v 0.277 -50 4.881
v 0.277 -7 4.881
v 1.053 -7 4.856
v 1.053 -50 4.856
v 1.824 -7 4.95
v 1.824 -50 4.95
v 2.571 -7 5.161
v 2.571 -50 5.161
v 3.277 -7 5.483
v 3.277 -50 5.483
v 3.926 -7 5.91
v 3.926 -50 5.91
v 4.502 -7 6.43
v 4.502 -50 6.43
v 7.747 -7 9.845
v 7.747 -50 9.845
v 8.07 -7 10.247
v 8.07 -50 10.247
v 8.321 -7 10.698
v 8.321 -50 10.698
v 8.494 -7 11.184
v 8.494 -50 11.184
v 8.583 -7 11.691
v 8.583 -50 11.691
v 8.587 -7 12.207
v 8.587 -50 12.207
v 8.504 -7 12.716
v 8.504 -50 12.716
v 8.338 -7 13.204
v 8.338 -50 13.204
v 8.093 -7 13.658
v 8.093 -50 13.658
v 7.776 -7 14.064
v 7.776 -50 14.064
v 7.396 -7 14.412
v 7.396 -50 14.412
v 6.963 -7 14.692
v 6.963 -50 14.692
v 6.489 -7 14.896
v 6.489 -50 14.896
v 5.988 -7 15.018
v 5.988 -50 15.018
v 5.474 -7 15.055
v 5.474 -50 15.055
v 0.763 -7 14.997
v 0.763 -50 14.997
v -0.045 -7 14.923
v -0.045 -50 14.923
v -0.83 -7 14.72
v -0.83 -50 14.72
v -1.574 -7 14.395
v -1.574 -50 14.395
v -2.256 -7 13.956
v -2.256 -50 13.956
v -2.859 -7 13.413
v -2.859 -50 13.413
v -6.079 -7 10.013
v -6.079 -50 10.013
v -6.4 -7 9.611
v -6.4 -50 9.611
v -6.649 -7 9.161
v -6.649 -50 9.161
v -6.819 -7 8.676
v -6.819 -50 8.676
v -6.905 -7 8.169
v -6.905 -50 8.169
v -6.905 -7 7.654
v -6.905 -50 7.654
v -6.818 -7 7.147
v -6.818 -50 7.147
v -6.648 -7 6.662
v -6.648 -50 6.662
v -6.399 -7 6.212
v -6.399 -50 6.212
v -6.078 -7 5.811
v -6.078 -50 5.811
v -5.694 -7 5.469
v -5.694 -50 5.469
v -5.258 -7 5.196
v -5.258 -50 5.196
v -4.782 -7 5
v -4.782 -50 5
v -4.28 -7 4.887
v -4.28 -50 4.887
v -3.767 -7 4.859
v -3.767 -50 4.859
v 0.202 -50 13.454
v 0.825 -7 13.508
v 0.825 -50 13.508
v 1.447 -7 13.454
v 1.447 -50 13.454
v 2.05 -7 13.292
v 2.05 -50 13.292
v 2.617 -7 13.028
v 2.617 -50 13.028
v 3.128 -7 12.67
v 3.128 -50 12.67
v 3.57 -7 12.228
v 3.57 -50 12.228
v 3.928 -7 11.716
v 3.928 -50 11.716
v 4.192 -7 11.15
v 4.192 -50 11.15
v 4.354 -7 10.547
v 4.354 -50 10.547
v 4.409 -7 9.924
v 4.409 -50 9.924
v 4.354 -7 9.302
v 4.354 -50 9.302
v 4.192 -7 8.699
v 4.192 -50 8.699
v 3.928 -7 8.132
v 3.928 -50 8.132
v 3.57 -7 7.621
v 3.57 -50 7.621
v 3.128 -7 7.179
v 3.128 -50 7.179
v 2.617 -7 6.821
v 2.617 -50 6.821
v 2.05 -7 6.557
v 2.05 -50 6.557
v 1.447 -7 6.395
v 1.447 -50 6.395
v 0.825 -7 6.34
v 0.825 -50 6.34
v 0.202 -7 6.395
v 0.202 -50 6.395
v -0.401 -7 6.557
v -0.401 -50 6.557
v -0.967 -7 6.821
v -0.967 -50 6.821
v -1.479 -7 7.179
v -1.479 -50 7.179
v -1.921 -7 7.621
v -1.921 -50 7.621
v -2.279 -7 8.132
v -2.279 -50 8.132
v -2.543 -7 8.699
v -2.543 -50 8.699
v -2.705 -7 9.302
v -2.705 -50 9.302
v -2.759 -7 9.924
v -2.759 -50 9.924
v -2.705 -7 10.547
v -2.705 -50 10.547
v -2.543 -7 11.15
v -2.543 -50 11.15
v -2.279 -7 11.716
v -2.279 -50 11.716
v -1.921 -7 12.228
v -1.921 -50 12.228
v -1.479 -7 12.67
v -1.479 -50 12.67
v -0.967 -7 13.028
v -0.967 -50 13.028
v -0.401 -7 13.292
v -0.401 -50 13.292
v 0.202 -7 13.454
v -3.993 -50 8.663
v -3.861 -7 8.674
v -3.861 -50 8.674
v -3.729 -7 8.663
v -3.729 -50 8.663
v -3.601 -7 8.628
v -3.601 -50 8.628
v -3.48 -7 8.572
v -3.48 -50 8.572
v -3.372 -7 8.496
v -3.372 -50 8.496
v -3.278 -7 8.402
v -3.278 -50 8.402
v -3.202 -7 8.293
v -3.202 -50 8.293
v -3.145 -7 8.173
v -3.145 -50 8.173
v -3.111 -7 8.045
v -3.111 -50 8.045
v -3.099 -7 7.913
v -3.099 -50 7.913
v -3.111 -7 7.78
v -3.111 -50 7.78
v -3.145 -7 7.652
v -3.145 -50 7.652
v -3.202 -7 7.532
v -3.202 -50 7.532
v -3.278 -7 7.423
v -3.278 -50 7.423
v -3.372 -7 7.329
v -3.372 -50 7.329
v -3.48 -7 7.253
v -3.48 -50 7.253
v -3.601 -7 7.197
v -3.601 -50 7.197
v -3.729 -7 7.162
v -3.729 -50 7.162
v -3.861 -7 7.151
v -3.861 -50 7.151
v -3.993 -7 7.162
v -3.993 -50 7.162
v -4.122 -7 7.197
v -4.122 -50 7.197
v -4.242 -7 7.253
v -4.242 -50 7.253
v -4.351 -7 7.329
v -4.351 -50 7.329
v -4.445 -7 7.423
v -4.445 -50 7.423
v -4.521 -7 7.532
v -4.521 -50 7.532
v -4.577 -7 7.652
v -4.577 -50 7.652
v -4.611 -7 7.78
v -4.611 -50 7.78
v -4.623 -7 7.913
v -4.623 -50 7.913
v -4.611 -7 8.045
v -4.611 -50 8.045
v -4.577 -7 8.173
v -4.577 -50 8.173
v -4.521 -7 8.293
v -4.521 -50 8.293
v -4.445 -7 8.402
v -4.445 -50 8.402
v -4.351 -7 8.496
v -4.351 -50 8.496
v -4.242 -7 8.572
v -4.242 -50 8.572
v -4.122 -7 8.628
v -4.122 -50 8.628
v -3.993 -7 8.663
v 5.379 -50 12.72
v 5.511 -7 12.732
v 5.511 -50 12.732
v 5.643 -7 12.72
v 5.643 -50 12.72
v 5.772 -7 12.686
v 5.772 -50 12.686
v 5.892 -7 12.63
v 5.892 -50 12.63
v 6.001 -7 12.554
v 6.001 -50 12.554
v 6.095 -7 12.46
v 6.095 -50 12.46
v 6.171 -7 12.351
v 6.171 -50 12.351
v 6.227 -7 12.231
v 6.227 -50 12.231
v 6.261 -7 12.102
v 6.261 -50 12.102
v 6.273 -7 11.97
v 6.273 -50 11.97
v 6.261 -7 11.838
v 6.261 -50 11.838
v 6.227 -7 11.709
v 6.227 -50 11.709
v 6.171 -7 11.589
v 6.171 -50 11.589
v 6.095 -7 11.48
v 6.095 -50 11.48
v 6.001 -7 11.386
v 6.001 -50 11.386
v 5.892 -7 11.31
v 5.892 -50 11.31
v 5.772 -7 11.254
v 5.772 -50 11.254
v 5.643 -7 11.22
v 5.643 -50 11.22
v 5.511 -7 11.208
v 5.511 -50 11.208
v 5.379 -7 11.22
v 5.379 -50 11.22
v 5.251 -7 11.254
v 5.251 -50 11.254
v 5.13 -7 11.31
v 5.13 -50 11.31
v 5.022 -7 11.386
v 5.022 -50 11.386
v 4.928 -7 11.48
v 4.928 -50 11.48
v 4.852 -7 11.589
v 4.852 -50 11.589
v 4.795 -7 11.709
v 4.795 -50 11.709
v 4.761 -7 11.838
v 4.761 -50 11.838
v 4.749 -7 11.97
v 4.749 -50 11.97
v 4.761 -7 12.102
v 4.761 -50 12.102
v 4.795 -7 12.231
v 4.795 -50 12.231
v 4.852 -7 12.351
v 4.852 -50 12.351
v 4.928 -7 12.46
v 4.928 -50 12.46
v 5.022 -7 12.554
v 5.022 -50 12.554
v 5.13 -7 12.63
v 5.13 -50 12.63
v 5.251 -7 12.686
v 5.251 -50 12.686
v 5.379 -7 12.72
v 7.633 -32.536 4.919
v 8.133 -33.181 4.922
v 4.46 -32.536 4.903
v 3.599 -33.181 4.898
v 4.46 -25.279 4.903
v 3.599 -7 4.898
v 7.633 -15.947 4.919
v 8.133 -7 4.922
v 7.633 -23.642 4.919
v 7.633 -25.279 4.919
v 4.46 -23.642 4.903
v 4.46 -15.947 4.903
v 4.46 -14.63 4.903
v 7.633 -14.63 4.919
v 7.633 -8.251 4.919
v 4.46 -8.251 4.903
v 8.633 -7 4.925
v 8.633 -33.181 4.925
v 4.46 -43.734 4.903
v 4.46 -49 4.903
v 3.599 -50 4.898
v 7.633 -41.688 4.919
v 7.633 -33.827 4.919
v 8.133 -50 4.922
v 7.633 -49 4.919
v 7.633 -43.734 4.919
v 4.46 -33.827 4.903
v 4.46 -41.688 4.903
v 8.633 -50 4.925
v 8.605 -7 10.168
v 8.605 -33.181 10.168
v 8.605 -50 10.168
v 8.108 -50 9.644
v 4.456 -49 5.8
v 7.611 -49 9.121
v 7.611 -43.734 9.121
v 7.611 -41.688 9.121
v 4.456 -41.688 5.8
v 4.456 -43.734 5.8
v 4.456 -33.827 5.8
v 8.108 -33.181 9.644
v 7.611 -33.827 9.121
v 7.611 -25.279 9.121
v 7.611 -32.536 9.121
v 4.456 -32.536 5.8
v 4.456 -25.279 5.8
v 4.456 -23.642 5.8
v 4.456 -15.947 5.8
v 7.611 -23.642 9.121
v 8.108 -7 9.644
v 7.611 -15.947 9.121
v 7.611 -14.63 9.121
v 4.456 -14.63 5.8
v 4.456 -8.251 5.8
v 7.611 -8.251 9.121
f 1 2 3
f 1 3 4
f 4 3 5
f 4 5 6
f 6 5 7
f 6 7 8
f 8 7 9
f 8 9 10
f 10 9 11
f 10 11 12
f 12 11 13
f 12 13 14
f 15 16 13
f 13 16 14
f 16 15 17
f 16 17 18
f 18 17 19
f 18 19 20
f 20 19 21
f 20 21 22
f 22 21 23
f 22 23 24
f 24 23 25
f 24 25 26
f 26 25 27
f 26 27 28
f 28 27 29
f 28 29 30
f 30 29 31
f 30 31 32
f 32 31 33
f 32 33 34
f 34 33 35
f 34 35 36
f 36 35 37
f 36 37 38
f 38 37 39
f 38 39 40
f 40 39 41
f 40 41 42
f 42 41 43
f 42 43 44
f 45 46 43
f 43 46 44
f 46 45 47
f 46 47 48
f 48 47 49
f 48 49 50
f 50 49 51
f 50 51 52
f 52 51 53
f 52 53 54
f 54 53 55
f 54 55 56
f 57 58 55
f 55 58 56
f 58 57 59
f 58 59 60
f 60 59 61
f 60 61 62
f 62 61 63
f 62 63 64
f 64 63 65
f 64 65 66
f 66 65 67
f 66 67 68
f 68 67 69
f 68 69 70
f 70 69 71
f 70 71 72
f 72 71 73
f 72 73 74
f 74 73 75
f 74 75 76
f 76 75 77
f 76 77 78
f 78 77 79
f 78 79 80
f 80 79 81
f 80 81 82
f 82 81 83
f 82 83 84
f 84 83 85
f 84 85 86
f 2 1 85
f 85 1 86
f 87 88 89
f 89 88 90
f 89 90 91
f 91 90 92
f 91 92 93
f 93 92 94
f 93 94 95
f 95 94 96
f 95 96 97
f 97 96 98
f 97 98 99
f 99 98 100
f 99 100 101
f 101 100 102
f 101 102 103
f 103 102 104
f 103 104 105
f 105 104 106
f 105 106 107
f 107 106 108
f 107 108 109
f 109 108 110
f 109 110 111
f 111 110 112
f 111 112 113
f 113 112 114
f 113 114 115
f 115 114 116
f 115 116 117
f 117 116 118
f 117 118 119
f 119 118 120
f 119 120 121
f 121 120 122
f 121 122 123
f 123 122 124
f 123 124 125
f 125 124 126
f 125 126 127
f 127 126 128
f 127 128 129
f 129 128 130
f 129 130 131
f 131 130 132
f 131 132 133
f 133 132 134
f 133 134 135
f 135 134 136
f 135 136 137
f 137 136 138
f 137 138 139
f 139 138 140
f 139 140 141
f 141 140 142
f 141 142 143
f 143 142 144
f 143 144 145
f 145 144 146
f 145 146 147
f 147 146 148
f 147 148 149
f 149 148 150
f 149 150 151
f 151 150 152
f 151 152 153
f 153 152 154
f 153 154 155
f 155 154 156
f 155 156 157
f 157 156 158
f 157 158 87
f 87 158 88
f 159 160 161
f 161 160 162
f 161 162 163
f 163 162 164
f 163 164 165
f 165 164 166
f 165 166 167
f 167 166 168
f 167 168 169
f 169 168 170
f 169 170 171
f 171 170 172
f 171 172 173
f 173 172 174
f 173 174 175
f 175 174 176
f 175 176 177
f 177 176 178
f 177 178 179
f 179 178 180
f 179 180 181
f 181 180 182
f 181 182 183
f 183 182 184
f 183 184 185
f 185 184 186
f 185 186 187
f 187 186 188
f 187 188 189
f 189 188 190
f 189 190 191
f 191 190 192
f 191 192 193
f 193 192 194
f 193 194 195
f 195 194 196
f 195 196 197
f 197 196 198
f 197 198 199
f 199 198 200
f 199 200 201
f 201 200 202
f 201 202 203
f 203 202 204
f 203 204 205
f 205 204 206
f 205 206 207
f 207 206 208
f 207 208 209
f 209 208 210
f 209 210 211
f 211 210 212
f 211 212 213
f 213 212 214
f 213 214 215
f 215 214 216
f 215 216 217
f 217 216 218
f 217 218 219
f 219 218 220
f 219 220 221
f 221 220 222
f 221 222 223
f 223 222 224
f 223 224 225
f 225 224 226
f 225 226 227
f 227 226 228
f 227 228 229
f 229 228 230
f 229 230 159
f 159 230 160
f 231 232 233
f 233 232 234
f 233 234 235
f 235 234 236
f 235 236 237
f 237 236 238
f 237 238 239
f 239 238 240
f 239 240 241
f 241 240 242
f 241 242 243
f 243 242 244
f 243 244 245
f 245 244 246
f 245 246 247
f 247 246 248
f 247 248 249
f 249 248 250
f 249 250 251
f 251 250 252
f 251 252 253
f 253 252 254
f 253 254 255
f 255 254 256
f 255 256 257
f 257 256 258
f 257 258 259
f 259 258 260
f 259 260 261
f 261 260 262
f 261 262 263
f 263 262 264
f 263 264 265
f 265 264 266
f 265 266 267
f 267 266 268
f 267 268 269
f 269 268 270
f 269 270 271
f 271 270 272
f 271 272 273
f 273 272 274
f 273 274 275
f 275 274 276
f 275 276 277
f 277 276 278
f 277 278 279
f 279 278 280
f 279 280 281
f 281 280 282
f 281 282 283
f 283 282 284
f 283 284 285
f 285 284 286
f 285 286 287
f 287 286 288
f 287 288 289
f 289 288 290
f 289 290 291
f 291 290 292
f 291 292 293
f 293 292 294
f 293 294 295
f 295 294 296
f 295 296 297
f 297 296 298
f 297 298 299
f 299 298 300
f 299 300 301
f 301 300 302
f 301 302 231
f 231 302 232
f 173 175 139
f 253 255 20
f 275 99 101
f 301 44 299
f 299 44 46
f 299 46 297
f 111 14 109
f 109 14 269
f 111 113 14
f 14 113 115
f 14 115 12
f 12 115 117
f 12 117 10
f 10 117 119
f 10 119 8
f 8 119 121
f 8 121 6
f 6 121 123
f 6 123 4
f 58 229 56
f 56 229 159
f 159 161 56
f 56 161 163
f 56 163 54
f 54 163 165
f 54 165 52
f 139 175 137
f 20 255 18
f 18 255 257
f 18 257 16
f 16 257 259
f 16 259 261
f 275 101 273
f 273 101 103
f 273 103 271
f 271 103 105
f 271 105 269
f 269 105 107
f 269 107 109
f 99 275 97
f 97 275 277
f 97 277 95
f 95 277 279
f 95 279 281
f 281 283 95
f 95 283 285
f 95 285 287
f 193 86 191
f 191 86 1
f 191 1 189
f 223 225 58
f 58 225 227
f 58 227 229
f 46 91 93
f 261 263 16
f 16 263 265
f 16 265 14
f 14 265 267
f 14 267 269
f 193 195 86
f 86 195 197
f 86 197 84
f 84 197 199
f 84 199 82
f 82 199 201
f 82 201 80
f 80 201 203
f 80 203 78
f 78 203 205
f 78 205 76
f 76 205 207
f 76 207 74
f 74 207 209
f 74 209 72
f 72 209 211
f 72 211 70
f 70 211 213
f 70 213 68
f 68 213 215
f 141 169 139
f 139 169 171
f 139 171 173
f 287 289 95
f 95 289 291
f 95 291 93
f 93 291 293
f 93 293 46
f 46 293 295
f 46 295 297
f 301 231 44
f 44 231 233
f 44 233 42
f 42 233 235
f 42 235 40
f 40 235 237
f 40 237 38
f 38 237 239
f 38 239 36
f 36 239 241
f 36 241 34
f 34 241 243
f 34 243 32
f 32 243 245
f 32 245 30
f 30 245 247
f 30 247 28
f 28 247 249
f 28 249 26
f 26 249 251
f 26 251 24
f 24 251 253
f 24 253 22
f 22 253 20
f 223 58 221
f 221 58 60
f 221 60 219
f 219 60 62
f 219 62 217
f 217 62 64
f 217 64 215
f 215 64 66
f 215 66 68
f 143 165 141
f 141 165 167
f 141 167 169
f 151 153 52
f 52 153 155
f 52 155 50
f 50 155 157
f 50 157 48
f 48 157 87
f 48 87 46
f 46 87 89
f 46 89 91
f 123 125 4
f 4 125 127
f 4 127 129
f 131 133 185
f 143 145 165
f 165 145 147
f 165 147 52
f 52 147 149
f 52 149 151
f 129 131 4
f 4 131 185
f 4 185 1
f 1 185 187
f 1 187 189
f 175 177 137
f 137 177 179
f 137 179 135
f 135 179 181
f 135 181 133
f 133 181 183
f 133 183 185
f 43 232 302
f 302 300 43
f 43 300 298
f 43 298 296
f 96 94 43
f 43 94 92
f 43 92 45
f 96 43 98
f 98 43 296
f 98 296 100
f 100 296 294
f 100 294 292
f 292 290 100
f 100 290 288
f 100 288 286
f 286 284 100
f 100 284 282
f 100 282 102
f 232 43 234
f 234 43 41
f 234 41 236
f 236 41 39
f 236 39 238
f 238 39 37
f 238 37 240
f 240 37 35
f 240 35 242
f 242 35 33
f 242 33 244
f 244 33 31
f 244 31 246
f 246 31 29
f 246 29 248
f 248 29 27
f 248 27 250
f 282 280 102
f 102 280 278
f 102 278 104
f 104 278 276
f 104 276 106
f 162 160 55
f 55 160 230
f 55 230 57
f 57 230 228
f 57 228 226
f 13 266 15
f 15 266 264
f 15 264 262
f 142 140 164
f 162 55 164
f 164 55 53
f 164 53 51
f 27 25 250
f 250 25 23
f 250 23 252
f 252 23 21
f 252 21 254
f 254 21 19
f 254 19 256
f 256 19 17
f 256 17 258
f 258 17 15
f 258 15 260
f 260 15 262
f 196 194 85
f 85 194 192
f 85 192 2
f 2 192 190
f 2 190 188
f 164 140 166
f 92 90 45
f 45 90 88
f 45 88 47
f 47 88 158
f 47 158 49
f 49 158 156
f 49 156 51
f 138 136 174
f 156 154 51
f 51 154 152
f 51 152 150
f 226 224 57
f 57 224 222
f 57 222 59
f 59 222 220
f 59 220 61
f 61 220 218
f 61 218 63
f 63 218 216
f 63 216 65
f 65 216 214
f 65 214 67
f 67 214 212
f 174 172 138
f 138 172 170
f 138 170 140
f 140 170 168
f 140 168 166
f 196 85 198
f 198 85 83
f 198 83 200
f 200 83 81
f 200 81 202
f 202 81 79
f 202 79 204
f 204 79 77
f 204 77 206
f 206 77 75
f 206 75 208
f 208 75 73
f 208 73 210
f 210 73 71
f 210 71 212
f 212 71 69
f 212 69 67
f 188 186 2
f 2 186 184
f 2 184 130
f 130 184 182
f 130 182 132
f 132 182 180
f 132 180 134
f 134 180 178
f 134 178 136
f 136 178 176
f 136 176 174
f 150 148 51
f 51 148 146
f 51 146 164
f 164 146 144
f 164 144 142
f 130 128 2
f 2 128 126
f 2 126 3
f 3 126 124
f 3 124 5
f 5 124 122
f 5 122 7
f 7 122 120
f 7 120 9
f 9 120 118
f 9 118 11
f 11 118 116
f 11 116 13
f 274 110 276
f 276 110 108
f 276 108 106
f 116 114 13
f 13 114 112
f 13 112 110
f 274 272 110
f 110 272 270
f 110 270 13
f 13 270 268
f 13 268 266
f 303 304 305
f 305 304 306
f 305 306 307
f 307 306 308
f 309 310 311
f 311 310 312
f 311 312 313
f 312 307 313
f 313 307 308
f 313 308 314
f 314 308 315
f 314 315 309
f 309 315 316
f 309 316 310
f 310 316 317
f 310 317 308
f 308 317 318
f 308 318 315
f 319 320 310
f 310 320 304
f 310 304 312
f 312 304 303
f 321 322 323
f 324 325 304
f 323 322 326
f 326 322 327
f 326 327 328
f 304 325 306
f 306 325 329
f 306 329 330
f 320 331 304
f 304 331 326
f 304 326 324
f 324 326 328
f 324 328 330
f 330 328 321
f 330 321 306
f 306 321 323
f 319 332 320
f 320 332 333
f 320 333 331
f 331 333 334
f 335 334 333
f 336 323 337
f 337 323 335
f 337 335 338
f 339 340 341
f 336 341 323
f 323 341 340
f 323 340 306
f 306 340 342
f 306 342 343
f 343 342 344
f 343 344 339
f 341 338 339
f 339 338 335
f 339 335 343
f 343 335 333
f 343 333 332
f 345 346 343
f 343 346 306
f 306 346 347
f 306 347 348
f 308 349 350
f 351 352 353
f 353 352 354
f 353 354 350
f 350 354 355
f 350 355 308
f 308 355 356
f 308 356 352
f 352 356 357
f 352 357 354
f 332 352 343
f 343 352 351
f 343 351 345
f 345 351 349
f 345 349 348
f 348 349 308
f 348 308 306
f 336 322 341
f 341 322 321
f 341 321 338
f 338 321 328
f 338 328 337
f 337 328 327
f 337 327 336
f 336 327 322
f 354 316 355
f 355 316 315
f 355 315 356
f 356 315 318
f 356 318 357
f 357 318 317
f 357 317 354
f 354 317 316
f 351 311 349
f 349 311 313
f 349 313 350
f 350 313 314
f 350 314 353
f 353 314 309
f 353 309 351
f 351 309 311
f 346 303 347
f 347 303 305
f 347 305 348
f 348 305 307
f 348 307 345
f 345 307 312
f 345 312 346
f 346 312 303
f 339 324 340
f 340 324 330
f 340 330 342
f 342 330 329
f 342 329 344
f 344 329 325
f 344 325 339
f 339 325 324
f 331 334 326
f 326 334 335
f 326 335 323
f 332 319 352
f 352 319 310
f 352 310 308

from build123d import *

# Parameters (mm, degrees)
CROQUIS1_R                            = 3.583990311
CROQUIS1_R_2                          = 0.761712319
MAIN_DEPTH                            = 50
SOPORTE_IMPRESI_N_REACH               = 12.612
SOPORTE_IMPRESI_N_OFFSET_FROM_SURFACE = 0.4
CROQUIS9_W                            = 5.162810259
CROQUIS9_H                            = 50
CROQUIS9_W_2                          = 3.172851398
CROQUIS9_H_2                          = 5.265929043
CROQUIS9_H_3                          = 5.56879997
CROQUIS9_H_4                          = 6.378318597
CROQUIS9_H_5                          = 7.695217182
CROQUIS9_H_6                          = 7.257188423
CROQUIS9_H_7                          = 7.861259403
CROQUIS10_W                           = 16.930665583
CROQUIS10_H                           = 7.998462294
AJUSTE_DE_LONGITUD_DEPTH              = 20


with BuildPart() as part:
    # Croquis1 → Main (new body)
    with BuildSketch(Plane(origin=(0, 0, 0), x_dir=(1, 0, 0), z_dir=(0, 1, 0))):
        with BuildLine():
            Line((4.50248526, -6.429915097), (7.747476145, -9.845240308))
            ThreePointArc((7.747476145, -9.845240308), (8.338348215, -13.204009355), (5.473726293, -15.054522947))
            Line((5.473726293, -15.054522947), (0.762978959, -14.997324233))
            ThreePointArc((0.762978959, -14.997324233), (-1.208594731, -14.57247254), (-2.858853831, -13.413056012))
            Line((-2.858853831, -13.413056012), (-6.078991771, -10.013141592))
            ThreePointArc((-6.078991771, -10.013141592), (-6.648174073, -6.662123841), (-3.766616226, -4.85937238))
            Line((-3.766616226, -4.85937238), (0.277312206, -4.880694454))
            ThreePointArc((0.277312206, -4.880694454), (2.571074261, -5.161186678), (4.50248526, -6.429915097))
        make_face()
        with Locations((0.824575354, -9.924394652)):
            Circle(CROQUIS1_R, mode=Mode.SUBTRACT)
        with Locations((-3.861167301, -7.912588509)):
            Circle(CROQUIS1_R_2, mode=Mode.SUBTRACT)
        with Locations((5.511179043, -11.970005379)):
            Circle(CROQUIS1_R_2, mode=Mode.SUBTRACT)
    extrude(amount=-MAIN_DEPTH)


with BuildPart() as body_2:

    # Soporte impresión: up to this face of the body (flat: up to its plane, moved by the offset)
    soporte_impresi_n_end = Plane(part.part.faces().sort_by_distance((6.124980703, -25, 8.137577703))[0]).offset(SOPORTE_IMPRESI_N_OFFSET_FROM_SURFACE)
    # Croquis9 → Soporte impresión (new body, up to the picked face)
    with BuildSketch(Plane(origin=(-0.025725594, 0, 4.879096653), x_dir=(-0.9999861, 0, -0.005272541), z_dir=(0.005272541, 0, -0.9999861)), mode=Mode.PRIVATE) as soporte_impresi_n_sk1:
        with Locations((-6.077554591, -25)):
            Rectangle(CROQUIS9_W, CROQUIS9_H)
        with Locations((-6.072534021, -46.367035479)):
            Rectangle(CROQUIS9_W_2, CROQUIS9_H_2, mode=Mode.SUBTRACT)
        with Locations((-6.072534021, -3.784399985)):
            Rectangle(CROQUIS9_W_2, CROQUIS9_H_3, mode=Mode.SUBTRACT)
        with Locations((-6.072534021, -11.440621391)):
            Rectangle(CROQUIS9_W_2, CROQUIS9_H_4, mode=Mode.SUBTRACT)
        with Locations((-6.072534021, -19.794287865)):
            Rectangle(CROQUIS9_W_2, CROQUIS9_H_5, mode=Mode.SUBTRACT)
        with Locations((-6.072534021, -28.907216676)):
            Rectangle(CROQUIS9_W_2, CROQUIS9_H_6, mode=Mode.SUBTRACT)
        with Locations((-6.072534021, -37.757738206)):
            Rectangle(CROQUIS9_W_2, CROQUIS9_H_7, mode=Mode.SUBTRACT)
    soporte_impresi_n_tool1 = split(extrude(soporte_impresi_n_sk1.sketch, amount=-SOPORTE_IMPRESI_N_REACH, mode=Mode.PRIVATE), bisect_by=soporte_impresi_n_end, keep=Keep.BOTH, mode=Mode.PRIVATE)
    add(soporte_impresi_n_tool1.solids().sort_by_distance((6.056606, -25.085307, 4.911166))[0])


with BuildPart() as ajuste_de_longitud_tool:
    # Croquis10 → Ajuste de longitud (new body)
    with BuildSketch(Plane.XY):
        with Locations((0.809895843, -3.000768853)):
            Rectangle(CROQUIS10_W, CROQUIS10_H)
    extrude(amount=AJUSTE_DE_LONGITUD_DEPTH)


with BuildPart() as part_1:
    add(part.part)

    # Ajuste de longitud: cut by ajuste_de_longitud_tool
    add(ajuste_de_longitud_tool.part, mode=Mode.SUBTRACT)


with BuildPart() as body_2_1:
    add(body_2.part)

    # Ajuste de longitud: cut by ajuste_de_longitud_tool
    add(ajuste_de_longitud_tool.part, mode=Mode.SUBTRACT)


solid = Compound([part_1.part, body_2_1.part])
